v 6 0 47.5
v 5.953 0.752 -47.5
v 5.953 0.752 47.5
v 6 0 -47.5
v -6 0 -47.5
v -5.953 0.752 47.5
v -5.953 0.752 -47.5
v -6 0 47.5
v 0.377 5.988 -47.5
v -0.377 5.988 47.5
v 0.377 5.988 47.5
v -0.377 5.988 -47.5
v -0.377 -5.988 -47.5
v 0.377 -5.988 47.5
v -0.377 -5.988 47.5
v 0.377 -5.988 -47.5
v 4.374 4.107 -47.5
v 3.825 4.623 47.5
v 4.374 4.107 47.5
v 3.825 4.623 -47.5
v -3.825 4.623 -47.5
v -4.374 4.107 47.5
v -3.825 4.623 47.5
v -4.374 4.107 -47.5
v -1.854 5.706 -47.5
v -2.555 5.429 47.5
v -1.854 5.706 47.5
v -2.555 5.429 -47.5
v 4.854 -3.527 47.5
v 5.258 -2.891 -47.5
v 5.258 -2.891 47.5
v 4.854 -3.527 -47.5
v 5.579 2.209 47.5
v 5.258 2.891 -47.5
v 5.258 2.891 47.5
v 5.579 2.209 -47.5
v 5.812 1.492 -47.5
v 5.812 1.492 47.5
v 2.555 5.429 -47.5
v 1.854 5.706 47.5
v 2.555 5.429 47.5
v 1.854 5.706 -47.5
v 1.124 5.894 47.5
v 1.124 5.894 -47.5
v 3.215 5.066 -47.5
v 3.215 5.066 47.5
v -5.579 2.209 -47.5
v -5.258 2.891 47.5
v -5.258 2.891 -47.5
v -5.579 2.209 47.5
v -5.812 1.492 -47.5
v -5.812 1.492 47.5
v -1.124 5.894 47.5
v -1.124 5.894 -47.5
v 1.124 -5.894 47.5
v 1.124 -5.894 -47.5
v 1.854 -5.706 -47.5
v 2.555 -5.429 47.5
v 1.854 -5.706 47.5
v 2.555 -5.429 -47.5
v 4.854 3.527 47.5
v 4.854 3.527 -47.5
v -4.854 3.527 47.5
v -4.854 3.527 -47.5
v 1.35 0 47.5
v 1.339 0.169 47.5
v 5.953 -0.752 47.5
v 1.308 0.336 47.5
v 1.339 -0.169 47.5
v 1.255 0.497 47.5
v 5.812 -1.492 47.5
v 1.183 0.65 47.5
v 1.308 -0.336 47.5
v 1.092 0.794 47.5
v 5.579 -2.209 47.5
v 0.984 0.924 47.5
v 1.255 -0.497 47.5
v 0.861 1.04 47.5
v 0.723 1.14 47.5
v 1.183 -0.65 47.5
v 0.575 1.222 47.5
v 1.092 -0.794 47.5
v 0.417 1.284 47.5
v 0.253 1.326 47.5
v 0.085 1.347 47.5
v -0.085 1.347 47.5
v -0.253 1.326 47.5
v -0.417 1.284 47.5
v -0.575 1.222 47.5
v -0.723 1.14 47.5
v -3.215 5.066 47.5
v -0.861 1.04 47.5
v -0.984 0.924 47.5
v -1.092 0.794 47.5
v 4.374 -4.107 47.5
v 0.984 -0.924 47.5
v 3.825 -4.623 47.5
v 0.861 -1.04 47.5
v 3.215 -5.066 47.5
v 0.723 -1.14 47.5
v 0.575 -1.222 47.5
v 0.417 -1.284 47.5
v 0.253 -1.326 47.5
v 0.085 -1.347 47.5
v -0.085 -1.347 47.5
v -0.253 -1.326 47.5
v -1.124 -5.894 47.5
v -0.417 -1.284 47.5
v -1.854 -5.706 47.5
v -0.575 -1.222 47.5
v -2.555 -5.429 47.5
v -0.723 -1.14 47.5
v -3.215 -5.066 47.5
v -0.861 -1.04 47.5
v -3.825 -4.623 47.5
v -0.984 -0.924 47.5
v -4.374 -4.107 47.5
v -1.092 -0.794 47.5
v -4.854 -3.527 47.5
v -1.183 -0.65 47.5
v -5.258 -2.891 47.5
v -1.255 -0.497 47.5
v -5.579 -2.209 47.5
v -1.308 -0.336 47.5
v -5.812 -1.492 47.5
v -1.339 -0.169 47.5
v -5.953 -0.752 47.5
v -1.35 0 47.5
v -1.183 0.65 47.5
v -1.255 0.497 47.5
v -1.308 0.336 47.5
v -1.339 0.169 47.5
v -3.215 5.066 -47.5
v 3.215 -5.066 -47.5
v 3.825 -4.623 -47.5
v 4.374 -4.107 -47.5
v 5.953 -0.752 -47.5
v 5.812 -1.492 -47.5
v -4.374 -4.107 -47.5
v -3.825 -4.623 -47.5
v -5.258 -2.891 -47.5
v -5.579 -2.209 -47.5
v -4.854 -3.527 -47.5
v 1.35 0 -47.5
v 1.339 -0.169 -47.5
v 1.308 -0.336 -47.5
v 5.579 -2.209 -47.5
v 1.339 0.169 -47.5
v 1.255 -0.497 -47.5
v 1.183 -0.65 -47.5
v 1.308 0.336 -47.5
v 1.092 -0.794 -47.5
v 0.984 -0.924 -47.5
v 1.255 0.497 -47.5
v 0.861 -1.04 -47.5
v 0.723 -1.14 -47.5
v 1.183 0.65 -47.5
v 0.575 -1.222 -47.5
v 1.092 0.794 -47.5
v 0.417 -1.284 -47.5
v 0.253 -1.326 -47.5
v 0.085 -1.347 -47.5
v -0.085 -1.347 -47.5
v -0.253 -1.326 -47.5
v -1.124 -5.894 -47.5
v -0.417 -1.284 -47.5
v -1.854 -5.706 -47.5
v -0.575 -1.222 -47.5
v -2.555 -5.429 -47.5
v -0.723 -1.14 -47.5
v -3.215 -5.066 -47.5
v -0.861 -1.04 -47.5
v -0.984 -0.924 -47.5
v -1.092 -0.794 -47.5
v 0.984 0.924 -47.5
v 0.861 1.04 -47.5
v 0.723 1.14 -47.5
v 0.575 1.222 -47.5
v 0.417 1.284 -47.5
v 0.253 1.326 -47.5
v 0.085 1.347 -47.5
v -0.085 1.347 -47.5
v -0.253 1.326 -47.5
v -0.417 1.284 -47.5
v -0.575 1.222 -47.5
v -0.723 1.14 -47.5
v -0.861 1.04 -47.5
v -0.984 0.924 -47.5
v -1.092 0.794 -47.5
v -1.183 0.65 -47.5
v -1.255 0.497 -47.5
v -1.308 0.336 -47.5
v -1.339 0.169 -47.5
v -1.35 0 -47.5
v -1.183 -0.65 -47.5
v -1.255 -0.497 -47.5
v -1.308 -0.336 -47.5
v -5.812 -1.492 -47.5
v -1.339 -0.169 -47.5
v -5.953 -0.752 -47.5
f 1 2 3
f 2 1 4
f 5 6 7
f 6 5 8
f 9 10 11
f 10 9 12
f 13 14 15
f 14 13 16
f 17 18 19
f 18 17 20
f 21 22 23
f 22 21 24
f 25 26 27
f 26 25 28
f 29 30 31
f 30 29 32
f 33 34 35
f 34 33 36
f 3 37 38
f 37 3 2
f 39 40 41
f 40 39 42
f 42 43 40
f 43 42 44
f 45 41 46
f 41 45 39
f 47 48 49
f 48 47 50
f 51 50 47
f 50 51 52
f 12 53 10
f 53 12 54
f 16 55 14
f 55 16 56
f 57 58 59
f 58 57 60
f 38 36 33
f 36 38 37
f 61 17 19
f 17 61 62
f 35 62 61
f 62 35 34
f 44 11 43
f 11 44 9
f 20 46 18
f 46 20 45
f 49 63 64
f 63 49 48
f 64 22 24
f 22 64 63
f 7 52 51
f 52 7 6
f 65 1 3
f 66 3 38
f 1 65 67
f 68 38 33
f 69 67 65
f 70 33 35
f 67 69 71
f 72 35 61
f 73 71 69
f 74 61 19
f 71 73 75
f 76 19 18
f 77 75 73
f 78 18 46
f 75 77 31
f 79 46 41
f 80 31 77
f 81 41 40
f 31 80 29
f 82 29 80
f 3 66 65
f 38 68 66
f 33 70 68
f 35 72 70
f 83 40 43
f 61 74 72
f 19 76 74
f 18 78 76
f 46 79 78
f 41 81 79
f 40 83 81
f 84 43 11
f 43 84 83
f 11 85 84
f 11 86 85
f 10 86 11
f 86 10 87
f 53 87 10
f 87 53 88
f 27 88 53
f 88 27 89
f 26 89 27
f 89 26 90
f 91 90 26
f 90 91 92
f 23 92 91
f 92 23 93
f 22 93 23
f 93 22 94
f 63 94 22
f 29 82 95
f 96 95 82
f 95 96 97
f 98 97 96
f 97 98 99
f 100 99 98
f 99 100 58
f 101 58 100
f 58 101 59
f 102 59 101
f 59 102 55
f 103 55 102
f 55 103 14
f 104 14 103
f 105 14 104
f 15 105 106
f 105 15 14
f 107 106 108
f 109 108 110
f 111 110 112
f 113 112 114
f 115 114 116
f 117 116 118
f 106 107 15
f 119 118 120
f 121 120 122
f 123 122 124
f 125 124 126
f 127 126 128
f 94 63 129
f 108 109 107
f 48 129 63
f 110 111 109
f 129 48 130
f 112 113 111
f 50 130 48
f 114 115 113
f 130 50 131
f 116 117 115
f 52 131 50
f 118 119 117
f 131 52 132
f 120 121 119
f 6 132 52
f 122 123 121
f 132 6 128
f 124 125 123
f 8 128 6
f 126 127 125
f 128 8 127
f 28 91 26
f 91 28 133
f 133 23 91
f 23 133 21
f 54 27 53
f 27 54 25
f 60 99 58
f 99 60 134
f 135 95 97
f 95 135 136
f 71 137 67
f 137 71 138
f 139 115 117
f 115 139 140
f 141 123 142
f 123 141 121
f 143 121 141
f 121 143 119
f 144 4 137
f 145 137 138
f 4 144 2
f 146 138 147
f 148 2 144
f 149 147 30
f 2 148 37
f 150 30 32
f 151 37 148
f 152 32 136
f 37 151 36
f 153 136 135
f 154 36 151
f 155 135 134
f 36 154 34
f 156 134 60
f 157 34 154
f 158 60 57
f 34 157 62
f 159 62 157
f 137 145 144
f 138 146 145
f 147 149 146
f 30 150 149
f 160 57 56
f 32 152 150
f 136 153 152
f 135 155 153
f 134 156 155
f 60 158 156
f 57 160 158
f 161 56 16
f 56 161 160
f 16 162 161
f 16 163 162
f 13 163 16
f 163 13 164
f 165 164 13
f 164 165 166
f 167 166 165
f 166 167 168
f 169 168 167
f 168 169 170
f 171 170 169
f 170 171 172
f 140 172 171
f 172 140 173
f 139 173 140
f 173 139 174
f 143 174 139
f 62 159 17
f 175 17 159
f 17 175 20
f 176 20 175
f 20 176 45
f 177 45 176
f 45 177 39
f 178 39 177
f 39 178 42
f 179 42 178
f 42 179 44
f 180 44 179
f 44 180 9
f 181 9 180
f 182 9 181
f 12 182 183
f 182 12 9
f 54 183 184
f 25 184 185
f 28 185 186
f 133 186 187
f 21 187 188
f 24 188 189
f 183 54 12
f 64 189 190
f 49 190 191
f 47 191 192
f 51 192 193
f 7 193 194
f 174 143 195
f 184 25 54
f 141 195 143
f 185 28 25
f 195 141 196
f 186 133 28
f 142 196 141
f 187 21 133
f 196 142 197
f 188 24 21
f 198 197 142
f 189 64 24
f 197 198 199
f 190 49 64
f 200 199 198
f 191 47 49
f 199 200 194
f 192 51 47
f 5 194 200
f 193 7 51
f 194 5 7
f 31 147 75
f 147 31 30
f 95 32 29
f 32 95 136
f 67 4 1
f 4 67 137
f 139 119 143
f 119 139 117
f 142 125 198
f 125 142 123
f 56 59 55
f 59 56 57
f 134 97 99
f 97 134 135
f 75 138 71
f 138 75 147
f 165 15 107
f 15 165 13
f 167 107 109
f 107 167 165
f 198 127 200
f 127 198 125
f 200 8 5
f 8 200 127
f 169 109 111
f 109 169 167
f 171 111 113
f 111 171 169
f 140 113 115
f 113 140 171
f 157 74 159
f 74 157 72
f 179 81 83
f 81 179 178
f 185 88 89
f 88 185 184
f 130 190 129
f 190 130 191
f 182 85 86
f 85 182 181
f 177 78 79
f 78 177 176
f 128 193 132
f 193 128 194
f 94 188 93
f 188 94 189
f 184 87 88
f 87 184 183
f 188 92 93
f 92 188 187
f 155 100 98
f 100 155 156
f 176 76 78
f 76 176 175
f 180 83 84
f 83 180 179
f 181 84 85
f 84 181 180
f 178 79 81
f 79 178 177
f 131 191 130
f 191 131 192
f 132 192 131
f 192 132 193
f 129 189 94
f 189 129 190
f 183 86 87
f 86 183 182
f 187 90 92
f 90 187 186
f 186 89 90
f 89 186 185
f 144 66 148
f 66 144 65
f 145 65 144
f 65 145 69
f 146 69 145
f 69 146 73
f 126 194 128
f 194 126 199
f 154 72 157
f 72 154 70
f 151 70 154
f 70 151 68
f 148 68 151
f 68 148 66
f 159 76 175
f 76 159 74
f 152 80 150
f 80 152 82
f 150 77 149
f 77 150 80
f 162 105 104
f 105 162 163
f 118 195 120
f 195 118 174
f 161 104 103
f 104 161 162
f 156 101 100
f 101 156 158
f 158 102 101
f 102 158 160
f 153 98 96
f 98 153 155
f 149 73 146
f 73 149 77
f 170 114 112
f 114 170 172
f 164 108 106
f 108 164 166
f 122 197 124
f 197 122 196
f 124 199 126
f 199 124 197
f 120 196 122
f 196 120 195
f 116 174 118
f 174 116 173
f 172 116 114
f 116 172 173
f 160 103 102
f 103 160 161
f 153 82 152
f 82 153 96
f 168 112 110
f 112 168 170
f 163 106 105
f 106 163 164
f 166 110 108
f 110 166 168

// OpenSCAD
$fn = 50;


difference() {
	union() {
		translate(v = [0, 0, -47.5000000000]) {
			cylinder(h = 95, r = 6.0000000000);
		}
	}
	union() {
		translate(v = [0, 0, -100.0000000000]) {
			cylinder(h = 200, r = 1.3500000000);
		}
	}
}
